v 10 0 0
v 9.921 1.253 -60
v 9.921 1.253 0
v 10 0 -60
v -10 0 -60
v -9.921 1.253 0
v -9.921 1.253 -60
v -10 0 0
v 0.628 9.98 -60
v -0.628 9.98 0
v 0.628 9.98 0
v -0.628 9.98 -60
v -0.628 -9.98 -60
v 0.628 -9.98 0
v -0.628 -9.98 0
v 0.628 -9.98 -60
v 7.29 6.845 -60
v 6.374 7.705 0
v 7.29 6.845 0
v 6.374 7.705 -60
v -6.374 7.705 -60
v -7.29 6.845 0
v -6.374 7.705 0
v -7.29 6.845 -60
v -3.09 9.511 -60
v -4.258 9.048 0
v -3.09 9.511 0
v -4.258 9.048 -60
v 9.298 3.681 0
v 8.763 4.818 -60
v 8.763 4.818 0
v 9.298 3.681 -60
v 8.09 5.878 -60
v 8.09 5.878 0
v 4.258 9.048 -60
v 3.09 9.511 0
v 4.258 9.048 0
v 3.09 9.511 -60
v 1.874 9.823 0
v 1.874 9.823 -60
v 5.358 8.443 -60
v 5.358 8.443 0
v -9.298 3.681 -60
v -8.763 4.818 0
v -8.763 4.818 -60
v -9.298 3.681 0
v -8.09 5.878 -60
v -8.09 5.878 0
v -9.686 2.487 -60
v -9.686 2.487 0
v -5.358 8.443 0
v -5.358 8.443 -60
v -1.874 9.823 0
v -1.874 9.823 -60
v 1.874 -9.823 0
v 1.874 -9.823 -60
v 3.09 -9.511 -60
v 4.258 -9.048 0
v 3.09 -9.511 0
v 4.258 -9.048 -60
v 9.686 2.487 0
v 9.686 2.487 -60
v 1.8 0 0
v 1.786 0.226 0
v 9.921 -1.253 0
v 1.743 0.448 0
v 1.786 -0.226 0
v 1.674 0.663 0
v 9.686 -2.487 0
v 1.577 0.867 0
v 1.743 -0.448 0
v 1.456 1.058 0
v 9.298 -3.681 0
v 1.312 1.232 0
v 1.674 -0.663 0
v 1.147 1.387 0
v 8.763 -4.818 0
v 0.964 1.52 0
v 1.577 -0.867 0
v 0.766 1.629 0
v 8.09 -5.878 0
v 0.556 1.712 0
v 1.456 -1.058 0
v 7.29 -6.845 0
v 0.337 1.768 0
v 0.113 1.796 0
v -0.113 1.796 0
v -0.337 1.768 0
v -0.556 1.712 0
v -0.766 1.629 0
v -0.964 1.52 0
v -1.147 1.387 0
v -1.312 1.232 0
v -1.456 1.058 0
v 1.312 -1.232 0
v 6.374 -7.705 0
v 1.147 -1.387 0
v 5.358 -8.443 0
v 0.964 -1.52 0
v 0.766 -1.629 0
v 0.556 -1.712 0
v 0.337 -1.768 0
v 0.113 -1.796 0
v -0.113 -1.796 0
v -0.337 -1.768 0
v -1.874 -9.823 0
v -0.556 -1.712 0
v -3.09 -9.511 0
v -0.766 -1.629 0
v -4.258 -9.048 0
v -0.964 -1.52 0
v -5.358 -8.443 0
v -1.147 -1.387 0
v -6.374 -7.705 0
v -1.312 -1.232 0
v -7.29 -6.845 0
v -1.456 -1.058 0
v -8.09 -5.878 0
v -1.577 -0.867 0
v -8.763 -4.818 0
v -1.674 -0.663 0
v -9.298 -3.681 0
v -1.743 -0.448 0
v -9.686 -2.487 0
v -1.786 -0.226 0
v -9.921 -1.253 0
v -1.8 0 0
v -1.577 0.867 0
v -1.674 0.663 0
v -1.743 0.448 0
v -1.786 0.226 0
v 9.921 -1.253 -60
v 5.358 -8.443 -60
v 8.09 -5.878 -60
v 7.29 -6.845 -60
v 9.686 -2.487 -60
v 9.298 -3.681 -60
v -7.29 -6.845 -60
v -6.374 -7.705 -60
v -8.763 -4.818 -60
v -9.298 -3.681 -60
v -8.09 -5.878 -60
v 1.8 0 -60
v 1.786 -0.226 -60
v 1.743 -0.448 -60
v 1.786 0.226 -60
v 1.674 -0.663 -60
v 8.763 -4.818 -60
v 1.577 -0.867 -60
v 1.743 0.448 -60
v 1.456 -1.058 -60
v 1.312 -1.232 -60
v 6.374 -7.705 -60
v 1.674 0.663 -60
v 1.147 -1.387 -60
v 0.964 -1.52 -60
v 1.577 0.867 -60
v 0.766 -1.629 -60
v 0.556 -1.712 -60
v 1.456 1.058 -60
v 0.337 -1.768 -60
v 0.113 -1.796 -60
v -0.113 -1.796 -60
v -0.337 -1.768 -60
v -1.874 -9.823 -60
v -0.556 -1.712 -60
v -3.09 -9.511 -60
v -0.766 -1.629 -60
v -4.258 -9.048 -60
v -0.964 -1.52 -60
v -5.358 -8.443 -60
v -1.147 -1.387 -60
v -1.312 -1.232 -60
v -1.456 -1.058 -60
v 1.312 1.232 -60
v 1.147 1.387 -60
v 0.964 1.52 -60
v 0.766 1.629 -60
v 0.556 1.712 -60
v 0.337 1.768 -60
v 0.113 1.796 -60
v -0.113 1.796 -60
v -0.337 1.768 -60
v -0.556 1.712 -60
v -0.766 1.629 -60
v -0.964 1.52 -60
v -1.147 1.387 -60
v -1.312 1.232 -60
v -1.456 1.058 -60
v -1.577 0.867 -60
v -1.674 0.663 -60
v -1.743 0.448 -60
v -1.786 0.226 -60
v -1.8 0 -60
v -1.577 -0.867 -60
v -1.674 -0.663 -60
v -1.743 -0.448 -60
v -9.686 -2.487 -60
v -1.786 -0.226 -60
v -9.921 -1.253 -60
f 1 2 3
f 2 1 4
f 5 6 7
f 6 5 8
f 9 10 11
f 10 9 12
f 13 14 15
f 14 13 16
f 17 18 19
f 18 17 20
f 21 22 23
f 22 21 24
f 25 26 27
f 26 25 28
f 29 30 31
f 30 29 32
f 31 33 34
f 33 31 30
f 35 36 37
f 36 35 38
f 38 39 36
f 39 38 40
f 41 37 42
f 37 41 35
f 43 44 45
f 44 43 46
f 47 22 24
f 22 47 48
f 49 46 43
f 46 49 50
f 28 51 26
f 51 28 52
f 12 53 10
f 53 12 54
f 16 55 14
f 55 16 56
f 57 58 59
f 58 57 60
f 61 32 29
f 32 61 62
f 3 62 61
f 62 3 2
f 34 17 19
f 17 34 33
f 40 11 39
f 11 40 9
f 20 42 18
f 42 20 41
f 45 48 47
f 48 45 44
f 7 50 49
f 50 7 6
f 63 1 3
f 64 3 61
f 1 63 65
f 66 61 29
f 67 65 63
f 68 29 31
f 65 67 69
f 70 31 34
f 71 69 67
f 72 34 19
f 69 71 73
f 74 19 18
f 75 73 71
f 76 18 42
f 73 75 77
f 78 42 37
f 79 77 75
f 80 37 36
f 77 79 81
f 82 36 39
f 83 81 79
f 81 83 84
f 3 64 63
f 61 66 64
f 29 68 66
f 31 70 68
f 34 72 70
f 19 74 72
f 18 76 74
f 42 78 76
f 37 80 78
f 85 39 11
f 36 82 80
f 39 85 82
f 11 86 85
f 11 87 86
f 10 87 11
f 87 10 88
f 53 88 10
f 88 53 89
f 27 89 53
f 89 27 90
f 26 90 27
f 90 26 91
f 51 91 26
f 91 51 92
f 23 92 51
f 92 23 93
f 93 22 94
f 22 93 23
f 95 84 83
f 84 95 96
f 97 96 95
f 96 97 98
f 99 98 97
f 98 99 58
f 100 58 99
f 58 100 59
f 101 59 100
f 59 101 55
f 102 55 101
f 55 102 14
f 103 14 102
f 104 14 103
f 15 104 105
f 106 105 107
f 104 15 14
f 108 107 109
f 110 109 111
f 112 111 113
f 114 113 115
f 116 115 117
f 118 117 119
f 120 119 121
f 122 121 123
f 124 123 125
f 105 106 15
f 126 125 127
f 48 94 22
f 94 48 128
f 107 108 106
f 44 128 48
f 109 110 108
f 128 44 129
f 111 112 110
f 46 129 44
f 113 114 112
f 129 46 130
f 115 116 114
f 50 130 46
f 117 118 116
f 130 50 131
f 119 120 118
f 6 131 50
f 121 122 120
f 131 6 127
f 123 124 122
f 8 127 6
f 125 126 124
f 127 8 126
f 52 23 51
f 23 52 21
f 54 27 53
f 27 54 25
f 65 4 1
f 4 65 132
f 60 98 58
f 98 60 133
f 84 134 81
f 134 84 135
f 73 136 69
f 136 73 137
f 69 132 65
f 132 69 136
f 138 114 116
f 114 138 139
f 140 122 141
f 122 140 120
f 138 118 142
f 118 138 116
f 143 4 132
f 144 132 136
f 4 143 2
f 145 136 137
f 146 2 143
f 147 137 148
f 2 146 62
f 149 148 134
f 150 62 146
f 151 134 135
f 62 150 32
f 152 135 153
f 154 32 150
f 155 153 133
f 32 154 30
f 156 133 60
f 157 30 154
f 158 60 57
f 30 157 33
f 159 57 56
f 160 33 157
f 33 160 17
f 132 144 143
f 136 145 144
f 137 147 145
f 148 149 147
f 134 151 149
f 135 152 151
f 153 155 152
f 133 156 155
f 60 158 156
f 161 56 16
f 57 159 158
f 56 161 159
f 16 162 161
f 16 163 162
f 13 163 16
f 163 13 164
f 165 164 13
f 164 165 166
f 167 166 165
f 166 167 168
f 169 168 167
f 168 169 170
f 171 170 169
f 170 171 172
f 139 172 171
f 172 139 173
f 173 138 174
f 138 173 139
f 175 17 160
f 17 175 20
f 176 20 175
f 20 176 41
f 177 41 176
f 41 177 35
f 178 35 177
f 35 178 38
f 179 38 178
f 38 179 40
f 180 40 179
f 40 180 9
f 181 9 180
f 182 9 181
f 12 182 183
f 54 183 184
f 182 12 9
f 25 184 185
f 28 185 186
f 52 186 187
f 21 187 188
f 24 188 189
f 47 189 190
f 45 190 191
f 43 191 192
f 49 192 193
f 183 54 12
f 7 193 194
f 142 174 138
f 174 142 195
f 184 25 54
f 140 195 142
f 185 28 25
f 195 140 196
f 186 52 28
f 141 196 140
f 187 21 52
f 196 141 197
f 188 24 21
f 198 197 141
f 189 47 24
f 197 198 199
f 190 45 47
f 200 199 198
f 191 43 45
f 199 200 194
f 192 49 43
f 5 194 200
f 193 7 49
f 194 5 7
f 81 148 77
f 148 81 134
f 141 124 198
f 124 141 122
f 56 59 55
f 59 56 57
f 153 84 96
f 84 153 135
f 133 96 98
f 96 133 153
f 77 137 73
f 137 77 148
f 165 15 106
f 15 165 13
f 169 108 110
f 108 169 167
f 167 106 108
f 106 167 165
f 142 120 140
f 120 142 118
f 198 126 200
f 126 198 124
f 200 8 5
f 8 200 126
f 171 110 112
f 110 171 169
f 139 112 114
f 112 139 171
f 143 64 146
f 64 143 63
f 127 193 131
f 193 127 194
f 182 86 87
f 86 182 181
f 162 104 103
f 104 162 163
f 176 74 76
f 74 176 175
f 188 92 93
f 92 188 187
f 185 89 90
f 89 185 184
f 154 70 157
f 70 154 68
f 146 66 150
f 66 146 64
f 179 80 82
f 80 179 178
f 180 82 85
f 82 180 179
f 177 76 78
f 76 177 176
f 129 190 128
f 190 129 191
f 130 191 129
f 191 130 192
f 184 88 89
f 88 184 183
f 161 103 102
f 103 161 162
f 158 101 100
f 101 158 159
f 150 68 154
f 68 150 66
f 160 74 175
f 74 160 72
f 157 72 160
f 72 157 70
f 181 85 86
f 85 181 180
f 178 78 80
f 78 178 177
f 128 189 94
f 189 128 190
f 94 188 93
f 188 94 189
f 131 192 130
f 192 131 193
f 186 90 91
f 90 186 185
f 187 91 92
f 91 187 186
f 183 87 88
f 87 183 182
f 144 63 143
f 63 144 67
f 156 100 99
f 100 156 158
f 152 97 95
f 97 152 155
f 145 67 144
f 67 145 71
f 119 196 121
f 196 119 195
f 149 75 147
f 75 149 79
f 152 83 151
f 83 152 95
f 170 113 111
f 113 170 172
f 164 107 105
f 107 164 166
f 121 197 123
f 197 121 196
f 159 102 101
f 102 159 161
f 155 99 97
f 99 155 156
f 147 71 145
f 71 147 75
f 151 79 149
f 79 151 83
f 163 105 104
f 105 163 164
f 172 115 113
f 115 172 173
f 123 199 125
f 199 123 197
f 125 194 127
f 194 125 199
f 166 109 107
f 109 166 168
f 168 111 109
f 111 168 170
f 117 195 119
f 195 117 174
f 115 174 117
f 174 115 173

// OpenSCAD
$fn = 50;


difference() {
	union() {
		translate(v = [0, 0, -60.0000000000]) {
			cylinder(h = 60, r = 10.0000000000);
		}
	}
	union() {
		#translate(v = [0, 0, -60]) {
			cylinder(h = 60, r = 1.8000000000);
		}
	}
}
